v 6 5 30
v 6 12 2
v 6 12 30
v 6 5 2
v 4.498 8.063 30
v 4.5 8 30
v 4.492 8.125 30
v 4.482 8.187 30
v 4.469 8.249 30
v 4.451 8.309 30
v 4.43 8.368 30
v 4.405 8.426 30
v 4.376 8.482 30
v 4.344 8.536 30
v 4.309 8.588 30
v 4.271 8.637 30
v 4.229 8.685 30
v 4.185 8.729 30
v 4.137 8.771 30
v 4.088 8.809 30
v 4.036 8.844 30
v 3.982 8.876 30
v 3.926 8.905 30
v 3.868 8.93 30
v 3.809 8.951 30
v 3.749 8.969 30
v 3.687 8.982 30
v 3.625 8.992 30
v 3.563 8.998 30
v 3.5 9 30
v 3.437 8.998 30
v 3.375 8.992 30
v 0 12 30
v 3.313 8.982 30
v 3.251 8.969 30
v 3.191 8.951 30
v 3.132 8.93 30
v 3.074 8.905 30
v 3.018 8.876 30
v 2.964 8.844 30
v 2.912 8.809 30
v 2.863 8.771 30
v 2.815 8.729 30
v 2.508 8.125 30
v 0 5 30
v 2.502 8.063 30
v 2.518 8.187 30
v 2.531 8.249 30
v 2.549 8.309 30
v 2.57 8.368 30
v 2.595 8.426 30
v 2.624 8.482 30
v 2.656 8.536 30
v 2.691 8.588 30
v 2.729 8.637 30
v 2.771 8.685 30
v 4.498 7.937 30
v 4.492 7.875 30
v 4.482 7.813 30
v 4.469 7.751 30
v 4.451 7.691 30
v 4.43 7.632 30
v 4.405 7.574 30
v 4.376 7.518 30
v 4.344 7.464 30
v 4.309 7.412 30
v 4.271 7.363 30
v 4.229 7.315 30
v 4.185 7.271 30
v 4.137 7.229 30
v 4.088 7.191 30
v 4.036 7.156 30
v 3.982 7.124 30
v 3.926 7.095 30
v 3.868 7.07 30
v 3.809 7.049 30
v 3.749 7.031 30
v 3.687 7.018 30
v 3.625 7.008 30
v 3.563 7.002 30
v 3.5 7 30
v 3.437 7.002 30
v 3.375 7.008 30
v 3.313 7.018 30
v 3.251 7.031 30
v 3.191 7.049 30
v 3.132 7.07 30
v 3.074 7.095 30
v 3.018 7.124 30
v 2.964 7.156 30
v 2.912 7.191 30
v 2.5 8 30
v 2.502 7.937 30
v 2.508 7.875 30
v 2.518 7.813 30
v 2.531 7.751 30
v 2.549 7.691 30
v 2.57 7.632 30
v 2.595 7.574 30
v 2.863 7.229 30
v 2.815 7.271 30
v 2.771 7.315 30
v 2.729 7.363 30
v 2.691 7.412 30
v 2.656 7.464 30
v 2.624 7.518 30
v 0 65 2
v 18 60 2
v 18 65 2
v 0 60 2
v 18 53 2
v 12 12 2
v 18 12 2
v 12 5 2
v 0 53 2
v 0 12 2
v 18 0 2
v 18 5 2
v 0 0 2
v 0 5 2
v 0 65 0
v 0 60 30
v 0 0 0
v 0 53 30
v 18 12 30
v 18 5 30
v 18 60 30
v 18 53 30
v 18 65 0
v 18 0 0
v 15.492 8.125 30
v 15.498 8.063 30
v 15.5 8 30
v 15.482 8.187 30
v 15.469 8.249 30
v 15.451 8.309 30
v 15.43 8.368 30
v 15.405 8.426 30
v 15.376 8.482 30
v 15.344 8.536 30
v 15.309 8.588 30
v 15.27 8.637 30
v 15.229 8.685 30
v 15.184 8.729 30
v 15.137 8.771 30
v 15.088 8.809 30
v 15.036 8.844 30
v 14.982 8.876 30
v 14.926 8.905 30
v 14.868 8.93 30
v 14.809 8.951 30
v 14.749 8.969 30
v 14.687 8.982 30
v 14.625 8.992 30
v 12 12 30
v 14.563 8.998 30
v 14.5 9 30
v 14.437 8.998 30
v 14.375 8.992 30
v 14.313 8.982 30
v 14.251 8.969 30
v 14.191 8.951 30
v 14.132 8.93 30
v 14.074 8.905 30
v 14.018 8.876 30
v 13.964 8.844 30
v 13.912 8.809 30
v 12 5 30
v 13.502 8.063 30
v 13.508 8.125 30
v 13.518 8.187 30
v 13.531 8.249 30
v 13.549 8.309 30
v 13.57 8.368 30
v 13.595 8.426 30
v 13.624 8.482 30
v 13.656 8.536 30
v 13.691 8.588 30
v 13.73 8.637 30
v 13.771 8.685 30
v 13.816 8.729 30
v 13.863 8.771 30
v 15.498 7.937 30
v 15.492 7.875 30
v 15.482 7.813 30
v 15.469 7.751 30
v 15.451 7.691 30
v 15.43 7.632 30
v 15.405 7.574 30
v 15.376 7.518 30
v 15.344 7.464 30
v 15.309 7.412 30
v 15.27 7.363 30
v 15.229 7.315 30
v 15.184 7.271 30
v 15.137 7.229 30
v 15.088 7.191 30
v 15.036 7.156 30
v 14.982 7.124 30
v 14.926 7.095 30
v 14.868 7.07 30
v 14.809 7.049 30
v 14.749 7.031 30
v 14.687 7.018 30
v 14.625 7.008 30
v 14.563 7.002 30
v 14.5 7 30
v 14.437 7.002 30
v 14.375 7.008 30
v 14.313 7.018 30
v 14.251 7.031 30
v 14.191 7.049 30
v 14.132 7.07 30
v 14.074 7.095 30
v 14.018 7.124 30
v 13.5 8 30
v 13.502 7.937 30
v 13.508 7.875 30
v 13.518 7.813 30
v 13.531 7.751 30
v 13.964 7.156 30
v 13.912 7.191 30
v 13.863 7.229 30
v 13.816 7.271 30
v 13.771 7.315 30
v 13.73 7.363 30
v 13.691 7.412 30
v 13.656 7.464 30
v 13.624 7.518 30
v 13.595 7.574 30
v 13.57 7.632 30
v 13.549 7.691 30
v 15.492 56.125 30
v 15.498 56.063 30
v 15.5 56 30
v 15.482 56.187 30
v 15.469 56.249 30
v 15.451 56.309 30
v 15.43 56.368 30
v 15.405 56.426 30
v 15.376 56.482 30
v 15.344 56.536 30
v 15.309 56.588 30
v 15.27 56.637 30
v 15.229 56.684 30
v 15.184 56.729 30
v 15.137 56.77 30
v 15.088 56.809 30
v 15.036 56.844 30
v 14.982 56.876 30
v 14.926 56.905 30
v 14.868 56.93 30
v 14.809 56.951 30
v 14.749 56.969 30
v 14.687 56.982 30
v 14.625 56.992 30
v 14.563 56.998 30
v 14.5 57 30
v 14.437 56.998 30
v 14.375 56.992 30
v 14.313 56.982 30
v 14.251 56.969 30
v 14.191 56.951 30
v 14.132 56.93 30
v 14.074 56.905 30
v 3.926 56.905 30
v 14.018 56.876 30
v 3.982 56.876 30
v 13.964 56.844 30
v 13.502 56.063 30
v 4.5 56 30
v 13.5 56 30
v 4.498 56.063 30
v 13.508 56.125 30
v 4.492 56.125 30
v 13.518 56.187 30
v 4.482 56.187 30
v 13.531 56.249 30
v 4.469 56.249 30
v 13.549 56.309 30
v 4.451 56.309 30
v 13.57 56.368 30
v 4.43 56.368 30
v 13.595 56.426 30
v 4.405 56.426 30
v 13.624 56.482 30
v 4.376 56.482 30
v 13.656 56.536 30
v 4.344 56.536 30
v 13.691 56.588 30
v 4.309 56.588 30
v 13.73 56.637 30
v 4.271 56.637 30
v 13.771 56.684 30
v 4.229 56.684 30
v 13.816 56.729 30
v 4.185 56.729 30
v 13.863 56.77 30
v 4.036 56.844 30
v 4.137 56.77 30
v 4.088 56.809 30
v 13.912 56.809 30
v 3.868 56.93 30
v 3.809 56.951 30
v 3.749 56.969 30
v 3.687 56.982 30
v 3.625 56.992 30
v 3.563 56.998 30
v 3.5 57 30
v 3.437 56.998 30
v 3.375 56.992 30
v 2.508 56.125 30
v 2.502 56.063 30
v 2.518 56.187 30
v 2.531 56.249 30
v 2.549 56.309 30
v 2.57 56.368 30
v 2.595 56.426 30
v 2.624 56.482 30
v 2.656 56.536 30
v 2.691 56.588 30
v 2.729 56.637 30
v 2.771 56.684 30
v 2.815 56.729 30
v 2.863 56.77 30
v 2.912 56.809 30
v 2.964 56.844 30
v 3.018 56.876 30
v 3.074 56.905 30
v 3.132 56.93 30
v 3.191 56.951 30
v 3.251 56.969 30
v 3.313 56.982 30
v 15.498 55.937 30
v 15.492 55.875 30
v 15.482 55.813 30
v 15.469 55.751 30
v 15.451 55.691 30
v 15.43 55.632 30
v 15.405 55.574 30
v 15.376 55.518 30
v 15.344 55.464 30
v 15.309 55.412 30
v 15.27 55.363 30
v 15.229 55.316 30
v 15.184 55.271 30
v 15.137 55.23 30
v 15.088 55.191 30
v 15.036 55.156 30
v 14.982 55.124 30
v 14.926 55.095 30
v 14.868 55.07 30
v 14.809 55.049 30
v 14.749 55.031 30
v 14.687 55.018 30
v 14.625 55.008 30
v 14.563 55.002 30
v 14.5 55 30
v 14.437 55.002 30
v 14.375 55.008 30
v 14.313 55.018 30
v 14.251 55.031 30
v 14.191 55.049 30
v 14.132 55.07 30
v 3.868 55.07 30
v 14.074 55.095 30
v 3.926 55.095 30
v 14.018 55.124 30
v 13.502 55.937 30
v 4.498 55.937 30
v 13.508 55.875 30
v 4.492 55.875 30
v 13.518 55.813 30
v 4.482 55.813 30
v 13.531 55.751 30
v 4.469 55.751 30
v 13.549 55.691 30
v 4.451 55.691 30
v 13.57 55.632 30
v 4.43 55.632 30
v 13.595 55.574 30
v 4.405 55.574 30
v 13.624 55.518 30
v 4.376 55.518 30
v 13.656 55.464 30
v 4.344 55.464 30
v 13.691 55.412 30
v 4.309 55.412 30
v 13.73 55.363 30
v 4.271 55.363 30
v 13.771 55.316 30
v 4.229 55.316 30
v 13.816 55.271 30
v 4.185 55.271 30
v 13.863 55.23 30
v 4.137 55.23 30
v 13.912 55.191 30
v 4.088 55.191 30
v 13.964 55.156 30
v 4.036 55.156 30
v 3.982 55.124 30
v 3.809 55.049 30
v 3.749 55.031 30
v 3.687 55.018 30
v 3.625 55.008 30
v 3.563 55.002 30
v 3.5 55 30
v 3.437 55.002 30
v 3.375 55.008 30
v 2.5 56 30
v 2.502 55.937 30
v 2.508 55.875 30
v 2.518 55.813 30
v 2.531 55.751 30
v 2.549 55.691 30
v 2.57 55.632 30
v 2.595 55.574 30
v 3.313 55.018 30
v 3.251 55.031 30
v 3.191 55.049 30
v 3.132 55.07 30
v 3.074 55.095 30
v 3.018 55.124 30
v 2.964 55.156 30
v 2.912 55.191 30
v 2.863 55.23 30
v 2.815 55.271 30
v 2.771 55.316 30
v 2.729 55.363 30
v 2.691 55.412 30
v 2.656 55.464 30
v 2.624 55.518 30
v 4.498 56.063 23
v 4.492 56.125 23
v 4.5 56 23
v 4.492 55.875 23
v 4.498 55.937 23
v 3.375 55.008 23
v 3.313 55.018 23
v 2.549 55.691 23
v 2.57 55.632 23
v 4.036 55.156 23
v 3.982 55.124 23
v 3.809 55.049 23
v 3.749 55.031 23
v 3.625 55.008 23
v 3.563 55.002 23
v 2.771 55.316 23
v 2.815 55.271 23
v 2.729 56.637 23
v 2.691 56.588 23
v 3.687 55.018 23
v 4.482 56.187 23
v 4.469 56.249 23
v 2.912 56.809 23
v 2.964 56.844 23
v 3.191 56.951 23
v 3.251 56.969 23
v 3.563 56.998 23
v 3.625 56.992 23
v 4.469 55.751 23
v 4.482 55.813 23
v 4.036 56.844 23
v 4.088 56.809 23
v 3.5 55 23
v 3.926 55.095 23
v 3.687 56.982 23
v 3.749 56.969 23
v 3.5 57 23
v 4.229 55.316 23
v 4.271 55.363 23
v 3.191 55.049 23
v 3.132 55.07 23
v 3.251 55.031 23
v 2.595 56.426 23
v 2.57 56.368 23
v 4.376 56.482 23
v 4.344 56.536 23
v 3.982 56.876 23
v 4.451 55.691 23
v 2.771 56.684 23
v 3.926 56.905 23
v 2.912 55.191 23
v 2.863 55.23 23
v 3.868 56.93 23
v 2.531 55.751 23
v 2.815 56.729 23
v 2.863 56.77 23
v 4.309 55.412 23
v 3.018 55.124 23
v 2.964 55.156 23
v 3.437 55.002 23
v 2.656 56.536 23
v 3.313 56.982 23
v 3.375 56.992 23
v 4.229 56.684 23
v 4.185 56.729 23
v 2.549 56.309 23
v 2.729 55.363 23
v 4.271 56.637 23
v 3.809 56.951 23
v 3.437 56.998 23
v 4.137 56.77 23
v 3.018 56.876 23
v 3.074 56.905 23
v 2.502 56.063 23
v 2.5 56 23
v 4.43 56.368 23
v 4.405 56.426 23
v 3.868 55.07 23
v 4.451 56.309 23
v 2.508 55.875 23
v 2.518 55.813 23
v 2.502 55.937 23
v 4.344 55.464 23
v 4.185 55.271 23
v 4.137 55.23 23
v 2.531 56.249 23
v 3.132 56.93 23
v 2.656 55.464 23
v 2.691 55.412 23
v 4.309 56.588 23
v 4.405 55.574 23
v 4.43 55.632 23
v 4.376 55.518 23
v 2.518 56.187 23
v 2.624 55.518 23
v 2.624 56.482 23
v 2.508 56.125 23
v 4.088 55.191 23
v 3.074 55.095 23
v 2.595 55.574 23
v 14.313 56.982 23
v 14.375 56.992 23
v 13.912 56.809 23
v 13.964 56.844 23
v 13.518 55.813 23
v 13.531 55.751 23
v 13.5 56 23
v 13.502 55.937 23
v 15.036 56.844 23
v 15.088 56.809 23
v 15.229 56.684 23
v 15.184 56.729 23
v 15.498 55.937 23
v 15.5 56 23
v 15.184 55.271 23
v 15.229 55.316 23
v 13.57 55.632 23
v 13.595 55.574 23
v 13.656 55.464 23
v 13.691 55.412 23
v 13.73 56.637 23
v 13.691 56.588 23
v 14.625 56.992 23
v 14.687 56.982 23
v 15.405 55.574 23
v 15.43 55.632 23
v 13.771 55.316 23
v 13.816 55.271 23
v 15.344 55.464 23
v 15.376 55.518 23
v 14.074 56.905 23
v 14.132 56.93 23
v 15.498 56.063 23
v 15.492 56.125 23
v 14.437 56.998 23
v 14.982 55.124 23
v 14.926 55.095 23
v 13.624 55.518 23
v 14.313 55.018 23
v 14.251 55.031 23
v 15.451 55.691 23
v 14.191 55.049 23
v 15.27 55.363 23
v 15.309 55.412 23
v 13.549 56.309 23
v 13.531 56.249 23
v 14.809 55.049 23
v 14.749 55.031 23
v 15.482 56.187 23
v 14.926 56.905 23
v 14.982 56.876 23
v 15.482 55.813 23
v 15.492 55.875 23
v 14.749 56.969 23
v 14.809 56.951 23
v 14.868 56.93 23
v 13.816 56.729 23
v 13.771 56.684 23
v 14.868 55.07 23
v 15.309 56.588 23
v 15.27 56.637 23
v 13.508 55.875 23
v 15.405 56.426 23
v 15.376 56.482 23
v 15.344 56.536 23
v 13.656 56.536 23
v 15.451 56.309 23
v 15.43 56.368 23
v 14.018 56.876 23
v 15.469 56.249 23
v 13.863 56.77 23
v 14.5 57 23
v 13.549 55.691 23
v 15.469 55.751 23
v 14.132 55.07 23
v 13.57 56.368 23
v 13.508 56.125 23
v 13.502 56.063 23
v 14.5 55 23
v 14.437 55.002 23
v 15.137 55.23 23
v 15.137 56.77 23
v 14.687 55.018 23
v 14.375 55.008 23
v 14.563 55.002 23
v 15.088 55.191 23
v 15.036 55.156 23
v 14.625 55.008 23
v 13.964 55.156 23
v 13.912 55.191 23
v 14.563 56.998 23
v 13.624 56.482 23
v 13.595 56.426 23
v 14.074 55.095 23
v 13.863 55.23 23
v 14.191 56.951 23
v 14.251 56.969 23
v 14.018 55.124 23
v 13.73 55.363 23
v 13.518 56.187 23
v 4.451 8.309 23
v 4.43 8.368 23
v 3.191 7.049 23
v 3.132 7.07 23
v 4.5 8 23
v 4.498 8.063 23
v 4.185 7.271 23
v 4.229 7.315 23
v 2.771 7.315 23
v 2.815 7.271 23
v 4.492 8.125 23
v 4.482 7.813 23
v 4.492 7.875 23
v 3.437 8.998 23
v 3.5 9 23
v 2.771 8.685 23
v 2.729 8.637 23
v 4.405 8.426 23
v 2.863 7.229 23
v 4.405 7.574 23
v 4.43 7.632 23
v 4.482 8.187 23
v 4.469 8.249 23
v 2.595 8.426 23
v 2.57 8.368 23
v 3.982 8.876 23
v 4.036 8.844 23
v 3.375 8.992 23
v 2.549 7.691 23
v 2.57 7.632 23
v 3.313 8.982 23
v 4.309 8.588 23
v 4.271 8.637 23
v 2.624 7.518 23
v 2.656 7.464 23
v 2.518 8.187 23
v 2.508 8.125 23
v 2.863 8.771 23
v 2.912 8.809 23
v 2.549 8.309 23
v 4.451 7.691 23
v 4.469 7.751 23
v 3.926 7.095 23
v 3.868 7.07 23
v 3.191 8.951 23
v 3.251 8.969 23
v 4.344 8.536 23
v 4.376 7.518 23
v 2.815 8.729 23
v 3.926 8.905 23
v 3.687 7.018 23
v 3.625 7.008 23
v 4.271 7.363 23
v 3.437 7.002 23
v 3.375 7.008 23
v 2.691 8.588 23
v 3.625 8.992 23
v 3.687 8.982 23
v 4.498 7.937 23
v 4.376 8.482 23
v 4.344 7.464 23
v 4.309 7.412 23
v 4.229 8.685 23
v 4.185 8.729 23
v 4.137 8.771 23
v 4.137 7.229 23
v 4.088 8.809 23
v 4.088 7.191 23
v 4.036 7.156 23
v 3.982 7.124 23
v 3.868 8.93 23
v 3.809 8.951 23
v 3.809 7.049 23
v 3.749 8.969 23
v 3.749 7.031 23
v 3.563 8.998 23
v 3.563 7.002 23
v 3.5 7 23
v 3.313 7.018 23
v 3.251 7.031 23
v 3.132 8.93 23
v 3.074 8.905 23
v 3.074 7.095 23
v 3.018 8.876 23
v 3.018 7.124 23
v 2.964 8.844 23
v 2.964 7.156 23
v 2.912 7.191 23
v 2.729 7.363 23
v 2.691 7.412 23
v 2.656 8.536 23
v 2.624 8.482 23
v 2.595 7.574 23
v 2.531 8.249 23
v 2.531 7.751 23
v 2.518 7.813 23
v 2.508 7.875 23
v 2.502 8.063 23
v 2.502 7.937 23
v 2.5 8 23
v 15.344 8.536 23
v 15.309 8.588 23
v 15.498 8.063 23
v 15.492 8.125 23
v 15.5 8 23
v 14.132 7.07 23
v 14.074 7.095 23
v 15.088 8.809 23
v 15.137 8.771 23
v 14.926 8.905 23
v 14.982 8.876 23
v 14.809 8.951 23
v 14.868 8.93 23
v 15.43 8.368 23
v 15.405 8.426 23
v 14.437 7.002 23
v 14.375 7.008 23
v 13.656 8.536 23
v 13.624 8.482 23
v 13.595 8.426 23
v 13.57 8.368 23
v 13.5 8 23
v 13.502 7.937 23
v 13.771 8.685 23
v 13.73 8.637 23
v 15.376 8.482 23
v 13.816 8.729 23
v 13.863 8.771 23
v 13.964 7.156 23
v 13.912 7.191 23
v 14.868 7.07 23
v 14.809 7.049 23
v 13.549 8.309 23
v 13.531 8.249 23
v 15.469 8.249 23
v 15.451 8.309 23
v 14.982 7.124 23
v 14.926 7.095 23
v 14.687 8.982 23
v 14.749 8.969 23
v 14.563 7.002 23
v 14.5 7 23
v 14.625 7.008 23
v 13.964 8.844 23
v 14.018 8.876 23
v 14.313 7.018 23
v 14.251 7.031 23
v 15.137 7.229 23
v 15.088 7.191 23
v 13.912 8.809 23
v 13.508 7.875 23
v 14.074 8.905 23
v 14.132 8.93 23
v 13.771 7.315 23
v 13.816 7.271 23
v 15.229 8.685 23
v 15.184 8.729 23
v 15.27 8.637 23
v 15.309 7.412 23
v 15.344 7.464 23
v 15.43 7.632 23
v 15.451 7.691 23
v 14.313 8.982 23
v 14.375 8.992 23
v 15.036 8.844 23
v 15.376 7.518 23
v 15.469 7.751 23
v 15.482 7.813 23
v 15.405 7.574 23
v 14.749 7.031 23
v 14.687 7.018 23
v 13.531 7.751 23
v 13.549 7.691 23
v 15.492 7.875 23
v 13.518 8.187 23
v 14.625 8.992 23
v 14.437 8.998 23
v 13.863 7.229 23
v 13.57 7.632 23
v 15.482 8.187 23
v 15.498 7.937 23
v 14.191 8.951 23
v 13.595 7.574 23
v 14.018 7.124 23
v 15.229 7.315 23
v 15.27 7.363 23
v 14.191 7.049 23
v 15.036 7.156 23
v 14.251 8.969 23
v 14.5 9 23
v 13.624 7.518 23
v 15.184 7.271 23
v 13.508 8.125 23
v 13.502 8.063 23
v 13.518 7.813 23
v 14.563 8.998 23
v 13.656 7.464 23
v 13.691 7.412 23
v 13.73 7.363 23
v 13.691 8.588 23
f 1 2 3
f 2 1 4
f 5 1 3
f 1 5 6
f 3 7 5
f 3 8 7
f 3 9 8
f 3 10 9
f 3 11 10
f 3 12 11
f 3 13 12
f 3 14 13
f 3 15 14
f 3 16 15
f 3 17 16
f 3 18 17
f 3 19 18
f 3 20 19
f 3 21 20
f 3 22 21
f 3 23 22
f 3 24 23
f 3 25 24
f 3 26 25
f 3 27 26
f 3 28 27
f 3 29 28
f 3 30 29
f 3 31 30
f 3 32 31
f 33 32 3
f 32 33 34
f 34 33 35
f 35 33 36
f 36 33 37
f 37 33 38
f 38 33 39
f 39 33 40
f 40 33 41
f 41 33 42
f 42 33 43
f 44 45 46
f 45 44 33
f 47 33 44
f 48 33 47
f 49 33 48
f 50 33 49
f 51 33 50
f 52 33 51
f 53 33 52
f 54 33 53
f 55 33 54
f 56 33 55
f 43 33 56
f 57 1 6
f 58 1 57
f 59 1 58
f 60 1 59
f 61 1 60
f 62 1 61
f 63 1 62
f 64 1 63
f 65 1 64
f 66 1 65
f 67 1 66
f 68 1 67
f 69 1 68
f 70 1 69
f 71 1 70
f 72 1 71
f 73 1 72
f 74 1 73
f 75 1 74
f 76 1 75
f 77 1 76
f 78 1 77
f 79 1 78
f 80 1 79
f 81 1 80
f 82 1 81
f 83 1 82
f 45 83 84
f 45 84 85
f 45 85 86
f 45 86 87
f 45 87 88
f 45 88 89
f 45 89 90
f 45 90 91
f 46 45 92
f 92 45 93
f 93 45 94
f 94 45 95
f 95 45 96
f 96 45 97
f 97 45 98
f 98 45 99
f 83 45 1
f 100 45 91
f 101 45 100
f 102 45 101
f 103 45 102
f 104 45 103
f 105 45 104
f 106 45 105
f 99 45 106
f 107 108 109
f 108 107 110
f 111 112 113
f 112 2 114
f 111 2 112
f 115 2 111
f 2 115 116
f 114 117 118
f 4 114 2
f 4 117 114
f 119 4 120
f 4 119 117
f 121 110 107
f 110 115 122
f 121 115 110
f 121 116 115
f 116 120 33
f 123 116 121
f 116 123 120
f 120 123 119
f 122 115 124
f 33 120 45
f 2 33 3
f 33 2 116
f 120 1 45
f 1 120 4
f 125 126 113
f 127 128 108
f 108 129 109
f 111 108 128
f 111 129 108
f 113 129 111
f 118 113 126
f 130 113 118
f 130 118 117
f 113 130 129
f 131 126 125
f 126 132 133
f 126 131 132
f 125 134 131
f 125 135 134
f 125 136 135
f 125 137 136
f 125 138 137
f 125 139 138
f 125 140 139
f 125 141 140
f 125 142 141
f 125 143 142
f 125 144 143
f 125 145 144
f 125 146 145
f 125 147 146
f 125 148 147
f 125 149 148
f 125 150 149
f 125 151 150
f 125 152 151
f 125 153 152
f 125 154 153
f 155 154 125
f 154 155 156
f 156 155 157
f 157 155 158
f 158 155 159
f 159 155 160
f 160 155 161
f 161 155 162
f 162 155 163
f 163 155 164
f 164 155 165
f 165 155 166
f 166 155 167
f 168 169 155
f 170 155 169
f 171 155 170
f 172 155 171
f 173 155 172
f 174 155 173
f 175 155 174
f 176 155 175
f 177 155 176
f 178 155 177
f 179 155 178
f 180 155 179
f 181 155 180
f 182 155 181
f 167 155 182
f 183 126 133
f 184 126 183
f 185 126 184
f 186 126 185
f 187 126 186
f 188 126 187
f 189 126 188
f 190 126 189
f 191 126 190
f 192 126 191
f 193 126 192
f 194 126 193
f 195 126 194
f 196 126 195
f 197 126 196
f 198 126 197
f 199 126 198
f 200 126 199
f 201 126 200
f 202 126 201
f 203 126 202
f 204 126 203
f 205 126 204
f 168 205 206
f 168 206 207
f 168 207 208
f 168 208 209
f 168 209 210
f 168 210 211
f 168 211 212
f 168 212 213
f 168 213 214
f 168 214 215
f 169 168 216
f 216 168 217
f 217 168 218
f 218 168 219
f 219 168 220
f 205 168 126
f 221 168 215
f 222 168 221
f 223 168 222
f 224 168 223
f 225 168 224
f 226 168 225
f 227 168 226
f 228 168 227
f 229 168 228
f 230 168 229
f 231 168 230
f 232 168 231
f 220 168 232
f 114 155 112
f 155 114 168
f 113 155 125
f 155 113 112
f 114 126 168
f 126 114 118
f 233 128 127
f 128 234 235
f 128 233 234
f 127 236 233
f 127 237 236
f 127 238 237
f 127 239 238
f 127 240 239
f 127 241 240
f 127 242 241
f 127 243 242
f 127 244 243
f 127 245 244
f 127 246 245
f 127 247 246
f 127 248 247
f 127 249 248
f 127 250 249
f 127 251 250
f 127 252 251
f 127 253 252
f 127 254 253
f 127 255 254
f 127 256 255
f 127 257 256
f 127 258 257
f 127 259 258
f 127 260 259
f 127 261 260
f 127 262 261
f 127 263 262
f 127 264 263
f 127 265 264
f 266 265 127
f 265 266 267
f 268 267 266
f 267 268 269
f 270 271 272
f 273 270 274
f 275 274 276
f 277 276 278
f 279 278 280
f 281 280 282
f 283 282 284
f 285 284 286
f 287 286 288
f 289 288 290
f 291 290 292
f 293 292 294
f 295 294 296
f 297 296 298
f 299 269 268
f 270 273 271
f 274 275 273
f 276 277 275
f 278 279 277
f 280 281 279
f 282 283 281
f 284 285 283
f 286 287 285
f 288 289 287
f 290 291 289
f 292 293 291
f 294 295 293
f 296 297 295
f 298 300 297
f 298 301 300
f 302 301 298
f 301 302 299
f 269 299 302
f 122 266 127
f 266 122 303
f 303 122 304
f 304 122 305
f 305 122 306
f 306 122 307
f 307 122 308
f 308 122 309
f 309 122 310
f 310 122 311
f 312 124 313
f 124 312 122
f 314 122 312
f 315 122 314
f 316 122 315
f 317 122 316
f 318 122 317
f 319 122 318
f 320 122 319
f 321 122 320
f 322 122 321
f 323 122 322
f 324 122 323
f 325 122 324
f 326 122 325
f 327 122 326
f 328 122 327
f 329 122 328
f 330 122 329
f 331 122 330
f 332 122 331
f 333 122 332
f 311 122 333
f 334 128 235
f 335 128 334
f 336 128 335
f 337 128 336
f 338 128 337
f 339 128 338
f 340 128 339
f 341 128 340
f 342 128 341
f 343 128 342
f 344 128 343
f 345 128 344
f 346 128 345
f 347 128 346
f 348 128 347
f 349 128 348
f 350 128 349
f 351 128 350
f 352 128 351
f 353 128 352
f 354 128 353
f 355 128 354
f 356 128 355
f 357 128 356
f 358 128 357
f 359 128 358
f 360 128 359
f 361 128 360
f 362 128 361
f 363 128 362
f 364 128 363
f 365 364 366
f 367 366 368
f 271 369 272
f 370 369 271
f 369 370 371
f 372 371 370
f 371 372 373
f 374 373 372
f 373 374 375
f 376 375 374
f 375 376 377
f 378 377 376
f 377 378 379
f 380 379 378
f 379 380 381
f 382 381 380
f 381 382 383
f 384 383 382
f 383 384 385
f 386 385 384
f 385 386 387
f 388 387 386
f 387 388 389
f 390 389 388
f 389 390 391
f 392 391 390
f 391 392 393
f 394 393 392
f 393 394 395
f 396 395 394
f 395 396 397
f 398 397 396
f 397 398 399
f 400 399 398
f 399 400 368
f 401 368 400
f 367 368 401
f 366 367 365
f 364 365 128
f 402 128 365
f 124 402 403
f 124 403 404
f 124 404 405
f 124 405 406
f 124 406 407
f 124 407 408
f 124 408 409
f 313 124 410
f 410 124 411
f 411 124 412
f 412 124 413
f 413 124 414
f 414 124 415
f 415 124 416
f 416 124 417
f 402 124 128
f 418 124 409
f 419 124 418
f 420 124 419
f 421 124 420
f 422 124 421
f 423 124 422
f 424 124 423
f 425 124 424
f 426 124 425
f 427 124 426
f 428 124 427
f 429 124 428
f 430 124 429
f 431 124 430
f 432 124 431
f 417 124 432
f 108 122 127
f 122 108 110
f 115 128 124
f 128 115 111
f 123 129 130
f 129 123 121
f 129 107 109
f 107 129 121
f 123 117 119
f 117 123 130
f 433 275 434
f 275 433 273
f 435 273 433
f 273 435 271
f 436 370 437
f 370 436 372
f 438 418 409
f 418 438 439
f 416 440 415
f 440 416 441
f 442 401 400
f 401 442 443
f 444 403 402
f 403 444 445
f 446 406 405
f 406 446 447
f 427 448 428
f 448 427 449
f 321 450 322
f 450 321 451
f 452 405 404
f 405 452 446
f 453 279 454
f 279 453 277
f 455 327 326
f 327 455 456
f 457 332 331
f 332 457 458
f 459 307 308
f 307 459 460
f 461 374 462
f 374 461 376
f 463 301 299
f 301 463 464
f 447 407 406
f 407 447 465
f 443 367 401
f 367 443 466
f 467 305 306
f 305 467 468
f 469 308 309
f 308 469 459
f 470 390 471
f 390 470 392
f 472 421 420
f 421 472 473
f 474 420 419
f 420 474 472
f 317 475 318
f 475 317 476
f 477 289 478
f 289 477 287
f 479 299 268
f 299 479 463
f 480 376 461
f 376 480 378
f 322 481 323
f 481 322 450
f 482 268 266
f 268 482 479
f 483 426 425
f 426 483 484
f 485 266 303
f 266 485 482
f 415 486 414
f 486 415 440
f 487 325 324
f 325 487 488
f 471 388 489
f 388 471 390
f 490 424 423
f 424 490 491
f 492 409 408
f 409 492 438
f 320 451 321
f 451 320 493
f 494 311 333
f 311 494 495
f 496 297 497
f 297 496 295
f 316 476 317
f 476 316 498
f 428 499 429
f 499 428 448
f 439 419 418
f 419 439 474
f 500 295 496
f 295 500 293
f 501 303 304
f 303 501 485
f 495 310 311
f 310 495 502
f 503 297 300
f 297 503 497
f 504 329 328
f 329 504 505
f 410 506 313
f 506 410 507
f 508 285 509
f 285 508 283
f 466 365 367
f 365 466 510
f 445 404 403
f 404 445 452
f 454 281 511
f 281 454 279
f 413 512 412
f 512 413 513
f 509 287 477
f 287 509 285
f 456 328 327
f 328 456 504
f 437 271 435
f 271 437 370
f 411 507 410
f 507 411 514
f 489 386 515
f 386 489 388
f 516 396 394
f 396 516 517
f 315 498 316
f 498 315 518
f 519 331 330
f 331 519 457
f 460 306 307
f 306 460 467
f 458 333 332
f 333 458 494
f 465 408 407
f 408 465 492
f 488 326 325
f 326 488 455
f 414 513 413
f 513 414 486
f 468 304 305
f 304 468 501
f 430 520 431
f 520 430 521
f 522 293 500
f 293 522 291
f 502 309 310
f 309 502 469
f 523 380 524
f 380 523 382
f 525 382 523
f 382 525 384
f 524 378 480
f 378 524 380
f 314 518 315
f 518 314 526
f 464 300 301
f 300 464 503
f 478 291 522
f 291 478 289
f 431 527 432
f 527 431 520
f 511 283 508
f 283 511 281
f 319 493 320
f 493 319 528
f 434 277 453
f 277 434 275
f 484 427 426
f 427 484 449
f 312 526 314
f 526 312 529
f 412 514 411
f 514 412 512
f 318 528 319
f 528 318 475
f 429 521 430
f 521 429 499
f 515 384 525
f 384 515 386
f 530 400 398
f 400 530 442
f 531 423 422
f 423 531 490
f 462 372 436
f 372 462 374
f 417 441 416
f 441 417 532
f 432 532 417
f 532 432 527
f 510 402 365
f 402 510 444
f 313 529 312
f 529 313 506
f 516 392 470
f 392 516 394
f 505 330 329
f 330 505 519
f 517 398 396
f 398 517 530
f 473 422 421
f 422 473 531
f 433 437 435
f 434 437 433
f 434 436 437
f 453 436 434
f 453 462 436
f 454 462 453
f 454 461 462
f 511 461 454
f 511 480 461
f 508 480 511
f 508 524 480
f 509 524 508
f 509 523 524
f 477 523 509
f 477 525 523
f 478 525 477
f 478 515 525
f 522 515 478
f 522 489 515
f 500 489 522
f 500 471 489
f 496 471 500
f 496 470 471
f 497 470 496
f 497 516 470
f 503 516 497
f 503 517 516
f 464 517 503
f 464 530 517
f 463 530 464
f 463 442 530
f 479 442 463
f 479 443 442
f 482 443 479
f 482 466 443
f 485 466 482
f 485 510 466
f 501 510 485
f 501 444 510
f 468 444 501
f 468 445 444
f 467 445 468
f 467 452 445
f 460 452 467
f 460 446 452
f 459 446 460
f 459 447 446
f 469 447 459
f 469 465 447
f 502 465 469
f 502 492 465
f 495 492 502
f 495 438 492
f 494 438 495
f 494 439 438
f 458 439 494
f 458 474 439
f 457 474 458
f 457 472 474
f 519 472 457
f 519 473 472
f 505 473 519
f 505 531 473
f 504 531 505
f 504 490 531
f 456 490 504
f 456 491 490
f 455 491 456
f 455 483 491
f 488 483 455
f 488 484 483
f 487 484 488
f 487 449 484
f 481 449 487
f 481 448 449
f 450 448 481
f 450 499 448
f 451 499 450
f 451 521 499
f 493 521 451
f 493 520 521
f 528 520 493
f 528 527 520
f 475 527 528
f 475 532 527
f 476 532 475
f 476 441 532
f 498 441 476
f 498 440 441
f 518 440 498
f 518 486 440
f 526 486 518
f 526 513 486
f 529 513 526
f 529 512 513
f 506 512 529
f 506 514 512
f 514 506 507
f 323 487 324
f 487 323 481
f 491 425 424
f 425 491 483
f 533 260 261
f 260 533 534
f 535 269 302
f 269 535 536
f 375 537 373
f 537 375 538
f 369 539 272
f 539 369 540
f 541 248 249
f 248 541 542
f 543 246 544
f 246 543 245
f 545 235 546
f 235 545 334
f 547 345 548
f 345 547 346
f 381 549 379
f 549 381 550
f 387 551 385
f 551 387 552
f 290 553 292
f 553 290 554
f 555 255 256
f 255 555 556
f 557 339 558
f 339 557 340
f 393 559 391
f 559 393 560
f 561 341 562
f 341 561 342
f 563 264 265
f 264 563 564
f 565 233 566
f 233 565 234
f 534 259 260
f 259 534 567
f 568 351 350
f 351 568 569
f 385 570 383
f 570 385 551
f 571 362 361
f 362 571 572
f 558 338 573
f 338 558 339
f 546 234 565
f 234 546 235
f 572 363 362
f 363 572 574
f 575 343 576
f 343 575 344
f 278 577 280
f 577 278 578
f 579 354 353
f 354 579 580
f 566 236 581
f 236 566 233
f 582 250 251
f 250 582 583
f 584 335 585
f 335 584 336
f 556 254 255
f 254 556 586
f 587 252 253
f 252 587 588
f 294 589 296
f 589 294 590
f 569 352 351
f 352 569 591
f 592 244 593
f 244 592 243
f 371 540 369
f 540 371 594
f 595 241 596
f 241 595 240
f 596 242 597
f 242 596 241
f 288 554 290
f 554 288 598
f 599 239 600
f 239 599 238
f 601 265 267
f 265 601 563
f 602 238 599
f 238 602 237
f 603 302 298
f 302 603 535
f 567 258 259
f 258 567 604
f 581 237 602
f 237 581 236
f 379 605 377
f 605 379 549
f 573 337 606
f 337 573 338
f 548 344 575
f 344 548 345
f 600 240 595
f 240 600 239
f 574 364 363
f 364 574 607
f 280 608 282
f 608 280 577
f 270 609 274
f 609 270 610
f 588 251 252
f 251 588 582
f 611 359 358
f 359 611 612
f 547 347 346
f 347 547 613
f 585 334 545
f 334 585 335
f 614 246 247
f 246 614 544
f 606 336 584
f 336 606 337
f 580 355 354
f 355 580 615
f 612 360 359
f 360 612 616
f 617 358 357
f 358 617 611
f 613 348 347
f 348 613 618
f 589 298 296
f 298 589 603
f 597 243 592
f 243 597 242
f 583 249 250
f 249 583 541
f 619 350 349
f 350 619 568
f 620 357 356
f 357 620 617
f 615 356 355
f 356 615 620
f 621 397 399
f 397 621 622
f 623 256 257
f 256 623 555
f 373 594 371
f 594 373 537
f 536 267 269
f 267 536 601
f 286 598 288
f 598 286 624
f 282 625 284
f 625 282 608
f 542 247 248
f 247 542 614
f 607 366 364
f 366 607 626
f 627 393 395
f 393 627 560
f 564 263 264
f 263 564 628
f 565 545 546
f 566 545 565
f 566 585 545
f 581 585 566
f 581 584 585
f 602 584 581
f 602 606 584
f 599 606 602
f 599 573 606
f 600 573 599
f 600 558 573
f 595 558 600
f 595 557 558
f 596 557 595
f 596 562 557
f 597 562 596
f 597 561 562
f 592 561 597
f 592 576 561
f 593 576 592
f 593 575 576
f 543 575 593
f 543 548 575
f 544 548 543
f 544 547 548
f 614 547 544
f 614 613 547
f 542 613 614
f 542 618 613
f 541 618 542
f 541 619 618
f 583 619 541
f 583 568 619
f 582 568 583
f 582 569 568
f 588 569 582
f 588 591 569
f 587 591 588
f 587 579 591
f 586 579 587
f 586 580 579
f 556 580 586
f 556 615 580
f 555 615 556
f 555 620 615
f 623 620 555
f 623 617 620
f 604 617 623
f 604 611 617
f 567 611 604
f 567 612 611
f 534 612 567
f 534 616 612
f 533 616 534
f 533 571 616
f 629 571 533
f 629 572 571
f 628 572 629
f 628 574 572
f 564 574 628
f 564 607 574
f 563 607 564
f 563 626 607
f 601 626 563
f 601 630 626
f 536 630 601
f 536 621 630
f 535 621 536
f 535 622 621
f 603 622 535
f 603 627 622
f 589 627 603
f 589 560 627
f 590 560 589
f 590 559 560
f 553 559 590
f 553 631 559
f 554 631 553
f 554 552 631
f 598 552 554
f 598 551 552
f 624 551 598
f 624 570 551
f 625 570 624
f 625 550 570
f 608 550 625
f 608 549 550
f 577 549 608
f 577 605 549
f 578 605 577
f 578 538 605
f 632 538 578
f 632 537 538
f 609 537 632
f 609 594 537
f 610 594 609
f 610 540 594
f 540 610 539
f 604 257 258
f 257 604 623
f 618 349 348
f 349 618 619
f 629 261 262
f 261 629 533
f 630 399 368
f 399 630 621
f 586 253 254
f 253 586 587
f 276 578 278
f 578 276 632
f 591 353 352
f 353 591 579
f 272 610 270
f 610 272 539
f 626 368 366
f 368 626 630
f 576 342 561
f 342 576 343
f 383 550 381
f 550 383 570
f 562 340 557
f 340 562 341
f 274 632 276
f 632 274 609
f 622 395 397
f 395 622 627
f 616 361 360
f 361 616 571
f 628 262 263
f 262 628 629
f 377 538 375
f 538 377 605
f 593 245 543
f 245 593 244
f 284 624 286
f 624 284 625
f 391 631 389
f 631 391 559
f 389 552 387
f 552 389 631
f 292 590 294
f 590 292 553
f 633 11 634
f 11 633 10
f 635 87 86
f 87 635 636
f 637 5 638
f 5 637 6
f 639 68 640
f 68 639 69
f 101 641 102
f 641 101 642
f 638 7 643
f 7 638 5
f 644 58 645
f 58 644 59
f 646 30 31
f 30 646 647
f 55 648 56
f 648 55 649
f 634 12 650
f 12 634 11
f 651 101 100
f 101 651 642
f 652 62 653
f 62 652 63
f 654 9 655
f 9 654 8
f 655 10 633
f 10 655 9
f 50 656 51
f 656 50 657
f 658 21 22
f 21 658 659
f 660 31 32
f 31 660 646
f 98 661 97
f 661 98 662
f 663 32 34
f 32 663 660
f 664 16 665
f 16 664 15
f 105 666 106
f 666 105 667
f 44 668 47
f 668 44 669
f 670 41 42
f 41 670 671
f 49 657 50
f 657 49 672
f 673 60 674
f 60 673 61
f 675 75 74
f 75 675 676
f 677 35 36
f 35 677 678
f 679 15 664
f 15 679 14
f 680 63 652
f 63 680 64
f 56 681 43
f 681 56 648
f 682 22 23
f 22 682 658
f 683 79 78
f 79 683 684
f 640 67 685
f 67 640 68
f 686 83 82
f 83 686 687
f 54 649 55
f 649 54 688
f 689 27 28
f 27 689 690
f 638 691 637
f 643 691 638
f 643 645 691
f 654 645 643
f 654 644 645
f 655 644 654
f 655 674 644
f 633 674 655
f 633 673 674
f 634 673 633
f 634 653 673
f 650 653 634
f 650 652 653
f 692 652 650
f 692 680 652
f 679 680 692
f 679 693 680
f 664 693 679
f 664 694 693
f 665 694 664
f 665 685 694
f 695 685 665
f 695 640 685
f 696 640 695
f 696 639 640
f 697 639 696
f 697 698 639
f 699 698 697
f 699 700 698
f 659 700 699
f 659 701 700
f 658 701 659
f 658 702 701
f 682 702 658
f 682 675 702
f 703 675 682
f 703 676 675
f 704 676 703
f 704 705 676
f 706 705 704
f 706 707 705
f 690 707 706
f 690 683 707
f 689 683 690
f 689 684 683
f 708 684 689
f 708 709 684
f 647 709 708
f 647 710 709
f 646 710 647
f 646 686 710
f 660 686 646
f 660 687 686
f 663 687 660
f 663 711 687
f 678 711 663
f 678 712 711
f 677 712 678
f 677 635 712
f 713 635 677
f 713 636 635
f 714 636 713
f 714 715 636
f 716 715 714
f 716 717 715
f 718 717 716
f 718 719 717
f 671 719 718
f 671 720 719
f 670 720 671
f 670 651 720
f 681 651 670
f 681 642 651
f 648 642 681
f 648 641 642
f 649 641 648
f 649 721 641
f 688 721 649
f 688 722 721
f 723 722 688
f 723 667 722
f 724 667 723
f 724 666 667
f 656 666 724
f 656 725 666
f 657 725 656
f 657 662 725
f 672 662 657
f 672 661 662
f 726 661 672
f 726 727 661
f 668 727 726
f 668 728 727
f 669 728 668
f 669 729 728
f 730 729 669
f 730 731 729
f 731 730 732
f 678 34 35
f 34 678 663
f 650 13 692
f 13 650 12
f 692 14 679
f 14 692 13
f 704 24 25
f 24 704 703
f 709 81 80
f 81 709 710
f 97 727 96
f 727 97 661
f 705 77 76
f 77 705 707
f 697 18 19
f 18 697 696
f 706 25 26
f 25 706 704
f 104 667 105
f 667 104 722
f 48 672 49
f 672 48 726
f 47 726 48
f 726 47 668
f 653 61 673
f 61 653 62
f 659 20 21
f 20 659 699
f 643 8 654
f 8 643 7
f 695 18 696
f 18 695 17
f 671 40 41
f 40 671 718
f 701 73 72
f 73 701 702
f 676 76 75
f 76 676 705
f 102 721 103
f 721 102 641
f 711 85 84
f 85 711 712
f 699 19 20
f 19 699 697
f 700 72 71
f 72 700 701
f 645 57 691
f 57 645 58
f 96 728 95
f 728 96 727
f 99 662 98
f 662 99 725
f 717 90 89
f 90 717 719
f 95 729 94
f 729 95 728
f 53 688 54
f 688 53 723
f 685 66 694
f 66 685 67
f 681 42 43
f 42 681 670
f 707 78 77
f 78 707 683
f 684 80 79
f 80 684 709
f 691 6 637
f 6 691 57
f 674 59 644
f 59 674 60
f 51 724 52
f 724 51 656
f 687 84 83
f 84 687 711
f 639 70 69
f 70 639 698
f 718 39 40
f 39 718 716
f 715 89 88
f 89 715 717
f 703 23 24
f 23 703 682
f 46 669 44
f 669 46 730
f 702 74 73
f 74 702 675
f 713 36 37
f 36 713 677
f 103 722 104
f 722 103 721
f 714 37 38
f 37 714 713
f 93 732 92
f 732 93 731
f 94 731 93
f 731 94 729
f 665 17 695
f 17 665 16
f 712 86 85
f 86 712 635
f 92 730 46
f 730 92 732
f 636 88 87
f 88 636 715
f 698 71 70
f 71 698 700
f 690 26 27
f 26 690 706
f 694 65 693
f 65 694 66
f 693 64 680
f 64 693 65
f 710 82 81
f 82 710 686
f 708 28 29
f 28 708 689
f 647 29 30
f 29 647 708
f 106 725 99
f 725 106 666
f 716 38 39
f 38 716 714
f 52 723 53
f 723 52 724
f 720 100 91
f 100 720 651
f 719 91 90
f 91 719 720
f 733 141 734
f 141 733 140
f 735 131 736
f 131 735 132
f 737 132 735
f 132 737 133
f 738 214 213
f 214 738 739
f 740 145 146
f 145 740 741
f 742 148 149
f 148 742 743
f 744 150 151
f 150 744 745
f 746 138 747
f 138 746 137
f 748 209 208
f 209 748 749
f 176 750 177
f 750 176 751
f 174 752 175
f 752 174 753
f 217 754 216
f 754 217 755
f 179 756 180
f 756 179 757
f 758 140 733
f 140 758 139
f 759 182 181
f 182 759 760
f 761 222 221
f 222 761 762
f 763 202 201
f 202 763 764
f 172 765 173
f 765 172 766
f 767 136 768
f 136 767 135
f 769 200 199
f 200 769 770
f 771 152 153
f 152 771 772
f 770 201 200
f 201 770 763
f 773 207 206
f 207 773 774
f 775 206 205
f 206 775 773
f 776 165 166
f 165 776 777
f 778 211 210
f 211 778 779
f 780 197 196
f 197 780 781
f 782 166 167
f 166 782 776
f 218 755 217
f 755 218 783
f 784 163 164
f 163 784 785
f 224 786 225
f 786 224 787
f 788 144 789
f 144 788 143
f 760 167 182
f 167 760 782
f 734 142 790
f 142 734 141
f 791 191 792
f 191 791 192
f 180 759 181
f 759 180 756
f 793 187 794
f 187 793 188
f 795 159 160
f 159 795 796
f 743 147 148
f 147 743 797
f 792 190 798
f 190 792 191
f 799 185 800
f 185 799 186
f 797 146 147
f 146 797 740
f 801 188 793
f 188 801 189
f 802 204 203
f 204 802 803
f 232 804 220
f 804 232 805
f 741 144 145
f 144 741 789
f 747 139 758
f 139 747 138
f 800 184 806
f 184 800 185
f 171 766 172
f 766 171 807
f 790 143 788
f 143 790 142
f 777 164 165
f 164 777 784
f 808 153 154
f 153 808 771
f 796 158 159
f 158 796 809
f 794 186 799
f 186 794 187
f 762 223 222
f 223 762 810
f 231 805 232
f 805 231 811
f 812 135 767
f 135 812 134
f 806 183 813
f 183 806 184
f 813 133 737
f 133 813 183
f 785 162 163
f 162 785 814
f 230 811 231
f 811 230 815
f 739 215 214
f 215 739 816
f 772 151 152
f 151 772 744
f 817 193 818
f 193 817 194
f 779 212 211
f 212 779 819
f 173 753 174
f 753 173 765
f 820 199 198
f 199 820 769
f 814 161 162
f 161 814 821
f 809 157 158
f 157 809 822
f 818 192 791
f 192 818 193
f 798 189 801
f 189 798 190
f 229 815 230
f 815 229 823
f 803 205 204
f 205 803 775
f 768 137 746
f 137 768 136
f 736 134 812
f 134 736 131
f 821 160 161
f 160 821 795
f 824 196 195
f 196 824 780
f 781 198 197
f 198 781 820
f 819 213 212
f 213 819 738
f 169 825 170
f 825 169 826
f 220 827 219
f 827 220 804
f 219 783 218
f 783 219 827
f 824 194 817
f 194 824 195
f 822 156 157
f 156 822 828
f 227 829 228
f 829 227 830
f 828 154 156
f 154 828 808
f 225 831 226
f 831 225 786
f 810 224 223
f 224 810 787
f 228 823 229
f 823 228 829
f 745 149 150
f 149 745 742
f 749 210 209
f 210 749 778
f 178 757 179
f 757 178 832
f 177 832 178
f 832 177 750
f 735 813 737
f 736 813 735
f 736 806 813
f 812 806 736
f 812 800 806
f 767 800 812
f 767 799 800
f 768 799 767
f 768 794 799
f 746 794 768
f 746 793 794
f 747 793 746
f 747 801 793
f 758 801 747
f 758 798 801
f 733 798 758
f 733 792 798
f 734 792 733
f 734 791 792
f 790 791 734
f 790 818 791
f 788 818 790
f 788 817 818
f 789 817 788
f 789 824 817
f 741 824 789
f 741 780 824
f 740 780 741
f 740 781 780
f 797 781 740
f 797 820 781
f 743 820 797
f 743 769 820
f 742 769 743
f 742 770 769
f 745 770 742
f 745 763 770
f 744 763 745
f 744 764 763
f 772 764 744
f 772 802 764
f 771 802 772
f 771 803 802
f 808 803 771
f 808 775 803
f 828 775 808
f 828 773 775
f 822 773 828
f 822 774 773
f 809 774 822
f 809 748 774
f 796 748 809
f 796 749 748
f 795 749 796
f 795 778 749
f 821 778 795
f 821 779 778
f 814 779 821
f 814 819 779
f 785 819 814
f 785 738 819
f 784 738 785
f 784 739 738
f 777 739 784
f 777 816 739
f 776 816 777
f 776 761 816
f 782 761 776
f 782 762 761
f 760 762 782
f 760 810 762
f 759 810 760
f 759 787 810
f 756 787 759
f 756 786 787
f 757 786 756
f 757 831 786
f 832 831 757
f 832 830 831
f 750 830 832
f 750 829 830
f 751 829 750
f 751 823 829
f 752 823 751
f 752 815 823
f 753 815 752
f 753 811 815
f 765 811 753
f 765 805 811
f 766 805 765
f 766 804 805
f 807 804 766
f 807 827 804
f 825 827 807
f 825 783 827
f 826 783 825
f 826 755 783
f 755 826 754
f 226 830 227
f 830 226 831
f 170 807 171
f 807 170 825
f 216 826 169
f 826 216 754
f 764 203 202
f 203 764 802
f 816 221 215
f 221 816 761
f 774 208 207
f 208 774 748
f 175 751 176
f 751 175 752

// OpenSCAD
wall_thickness = 2;
pillar_length = 7;
small_pillar_depth = 6;

servo_length = 41;
servo_width = 18;
servo_height = 28;
$fn = 100;
difference(){
	union(){
		cube([servo_width, 65, wall_thickness]);
		translate([0,5,wall_thickness]){
			// the front new pillars
			cube([small_pillar_depth, pillar_length, servo_height]);
			translate([12, 0, 0])cube([small_pillar_depth, pillar_length, servo_height]);
			// the rear pillar
			translate([0, servo_length+pillar_length, 0])cube([servo_width, pillar_length, servo_height]);
		}
	}
	translate([pillar_length/2, 5+small_pillar_depth/2, servo_height-5]){
		cylinder(d=2,h=7);
		translate([11, 0, 0])cylinder(d=2,h=7);
		translate([0, servo_length+pillar_length, 0]){
			cylinder(d=2, h=7);
			translate([11, 0, 0])cylinder(d=2,h=7);
		}
	}
}
